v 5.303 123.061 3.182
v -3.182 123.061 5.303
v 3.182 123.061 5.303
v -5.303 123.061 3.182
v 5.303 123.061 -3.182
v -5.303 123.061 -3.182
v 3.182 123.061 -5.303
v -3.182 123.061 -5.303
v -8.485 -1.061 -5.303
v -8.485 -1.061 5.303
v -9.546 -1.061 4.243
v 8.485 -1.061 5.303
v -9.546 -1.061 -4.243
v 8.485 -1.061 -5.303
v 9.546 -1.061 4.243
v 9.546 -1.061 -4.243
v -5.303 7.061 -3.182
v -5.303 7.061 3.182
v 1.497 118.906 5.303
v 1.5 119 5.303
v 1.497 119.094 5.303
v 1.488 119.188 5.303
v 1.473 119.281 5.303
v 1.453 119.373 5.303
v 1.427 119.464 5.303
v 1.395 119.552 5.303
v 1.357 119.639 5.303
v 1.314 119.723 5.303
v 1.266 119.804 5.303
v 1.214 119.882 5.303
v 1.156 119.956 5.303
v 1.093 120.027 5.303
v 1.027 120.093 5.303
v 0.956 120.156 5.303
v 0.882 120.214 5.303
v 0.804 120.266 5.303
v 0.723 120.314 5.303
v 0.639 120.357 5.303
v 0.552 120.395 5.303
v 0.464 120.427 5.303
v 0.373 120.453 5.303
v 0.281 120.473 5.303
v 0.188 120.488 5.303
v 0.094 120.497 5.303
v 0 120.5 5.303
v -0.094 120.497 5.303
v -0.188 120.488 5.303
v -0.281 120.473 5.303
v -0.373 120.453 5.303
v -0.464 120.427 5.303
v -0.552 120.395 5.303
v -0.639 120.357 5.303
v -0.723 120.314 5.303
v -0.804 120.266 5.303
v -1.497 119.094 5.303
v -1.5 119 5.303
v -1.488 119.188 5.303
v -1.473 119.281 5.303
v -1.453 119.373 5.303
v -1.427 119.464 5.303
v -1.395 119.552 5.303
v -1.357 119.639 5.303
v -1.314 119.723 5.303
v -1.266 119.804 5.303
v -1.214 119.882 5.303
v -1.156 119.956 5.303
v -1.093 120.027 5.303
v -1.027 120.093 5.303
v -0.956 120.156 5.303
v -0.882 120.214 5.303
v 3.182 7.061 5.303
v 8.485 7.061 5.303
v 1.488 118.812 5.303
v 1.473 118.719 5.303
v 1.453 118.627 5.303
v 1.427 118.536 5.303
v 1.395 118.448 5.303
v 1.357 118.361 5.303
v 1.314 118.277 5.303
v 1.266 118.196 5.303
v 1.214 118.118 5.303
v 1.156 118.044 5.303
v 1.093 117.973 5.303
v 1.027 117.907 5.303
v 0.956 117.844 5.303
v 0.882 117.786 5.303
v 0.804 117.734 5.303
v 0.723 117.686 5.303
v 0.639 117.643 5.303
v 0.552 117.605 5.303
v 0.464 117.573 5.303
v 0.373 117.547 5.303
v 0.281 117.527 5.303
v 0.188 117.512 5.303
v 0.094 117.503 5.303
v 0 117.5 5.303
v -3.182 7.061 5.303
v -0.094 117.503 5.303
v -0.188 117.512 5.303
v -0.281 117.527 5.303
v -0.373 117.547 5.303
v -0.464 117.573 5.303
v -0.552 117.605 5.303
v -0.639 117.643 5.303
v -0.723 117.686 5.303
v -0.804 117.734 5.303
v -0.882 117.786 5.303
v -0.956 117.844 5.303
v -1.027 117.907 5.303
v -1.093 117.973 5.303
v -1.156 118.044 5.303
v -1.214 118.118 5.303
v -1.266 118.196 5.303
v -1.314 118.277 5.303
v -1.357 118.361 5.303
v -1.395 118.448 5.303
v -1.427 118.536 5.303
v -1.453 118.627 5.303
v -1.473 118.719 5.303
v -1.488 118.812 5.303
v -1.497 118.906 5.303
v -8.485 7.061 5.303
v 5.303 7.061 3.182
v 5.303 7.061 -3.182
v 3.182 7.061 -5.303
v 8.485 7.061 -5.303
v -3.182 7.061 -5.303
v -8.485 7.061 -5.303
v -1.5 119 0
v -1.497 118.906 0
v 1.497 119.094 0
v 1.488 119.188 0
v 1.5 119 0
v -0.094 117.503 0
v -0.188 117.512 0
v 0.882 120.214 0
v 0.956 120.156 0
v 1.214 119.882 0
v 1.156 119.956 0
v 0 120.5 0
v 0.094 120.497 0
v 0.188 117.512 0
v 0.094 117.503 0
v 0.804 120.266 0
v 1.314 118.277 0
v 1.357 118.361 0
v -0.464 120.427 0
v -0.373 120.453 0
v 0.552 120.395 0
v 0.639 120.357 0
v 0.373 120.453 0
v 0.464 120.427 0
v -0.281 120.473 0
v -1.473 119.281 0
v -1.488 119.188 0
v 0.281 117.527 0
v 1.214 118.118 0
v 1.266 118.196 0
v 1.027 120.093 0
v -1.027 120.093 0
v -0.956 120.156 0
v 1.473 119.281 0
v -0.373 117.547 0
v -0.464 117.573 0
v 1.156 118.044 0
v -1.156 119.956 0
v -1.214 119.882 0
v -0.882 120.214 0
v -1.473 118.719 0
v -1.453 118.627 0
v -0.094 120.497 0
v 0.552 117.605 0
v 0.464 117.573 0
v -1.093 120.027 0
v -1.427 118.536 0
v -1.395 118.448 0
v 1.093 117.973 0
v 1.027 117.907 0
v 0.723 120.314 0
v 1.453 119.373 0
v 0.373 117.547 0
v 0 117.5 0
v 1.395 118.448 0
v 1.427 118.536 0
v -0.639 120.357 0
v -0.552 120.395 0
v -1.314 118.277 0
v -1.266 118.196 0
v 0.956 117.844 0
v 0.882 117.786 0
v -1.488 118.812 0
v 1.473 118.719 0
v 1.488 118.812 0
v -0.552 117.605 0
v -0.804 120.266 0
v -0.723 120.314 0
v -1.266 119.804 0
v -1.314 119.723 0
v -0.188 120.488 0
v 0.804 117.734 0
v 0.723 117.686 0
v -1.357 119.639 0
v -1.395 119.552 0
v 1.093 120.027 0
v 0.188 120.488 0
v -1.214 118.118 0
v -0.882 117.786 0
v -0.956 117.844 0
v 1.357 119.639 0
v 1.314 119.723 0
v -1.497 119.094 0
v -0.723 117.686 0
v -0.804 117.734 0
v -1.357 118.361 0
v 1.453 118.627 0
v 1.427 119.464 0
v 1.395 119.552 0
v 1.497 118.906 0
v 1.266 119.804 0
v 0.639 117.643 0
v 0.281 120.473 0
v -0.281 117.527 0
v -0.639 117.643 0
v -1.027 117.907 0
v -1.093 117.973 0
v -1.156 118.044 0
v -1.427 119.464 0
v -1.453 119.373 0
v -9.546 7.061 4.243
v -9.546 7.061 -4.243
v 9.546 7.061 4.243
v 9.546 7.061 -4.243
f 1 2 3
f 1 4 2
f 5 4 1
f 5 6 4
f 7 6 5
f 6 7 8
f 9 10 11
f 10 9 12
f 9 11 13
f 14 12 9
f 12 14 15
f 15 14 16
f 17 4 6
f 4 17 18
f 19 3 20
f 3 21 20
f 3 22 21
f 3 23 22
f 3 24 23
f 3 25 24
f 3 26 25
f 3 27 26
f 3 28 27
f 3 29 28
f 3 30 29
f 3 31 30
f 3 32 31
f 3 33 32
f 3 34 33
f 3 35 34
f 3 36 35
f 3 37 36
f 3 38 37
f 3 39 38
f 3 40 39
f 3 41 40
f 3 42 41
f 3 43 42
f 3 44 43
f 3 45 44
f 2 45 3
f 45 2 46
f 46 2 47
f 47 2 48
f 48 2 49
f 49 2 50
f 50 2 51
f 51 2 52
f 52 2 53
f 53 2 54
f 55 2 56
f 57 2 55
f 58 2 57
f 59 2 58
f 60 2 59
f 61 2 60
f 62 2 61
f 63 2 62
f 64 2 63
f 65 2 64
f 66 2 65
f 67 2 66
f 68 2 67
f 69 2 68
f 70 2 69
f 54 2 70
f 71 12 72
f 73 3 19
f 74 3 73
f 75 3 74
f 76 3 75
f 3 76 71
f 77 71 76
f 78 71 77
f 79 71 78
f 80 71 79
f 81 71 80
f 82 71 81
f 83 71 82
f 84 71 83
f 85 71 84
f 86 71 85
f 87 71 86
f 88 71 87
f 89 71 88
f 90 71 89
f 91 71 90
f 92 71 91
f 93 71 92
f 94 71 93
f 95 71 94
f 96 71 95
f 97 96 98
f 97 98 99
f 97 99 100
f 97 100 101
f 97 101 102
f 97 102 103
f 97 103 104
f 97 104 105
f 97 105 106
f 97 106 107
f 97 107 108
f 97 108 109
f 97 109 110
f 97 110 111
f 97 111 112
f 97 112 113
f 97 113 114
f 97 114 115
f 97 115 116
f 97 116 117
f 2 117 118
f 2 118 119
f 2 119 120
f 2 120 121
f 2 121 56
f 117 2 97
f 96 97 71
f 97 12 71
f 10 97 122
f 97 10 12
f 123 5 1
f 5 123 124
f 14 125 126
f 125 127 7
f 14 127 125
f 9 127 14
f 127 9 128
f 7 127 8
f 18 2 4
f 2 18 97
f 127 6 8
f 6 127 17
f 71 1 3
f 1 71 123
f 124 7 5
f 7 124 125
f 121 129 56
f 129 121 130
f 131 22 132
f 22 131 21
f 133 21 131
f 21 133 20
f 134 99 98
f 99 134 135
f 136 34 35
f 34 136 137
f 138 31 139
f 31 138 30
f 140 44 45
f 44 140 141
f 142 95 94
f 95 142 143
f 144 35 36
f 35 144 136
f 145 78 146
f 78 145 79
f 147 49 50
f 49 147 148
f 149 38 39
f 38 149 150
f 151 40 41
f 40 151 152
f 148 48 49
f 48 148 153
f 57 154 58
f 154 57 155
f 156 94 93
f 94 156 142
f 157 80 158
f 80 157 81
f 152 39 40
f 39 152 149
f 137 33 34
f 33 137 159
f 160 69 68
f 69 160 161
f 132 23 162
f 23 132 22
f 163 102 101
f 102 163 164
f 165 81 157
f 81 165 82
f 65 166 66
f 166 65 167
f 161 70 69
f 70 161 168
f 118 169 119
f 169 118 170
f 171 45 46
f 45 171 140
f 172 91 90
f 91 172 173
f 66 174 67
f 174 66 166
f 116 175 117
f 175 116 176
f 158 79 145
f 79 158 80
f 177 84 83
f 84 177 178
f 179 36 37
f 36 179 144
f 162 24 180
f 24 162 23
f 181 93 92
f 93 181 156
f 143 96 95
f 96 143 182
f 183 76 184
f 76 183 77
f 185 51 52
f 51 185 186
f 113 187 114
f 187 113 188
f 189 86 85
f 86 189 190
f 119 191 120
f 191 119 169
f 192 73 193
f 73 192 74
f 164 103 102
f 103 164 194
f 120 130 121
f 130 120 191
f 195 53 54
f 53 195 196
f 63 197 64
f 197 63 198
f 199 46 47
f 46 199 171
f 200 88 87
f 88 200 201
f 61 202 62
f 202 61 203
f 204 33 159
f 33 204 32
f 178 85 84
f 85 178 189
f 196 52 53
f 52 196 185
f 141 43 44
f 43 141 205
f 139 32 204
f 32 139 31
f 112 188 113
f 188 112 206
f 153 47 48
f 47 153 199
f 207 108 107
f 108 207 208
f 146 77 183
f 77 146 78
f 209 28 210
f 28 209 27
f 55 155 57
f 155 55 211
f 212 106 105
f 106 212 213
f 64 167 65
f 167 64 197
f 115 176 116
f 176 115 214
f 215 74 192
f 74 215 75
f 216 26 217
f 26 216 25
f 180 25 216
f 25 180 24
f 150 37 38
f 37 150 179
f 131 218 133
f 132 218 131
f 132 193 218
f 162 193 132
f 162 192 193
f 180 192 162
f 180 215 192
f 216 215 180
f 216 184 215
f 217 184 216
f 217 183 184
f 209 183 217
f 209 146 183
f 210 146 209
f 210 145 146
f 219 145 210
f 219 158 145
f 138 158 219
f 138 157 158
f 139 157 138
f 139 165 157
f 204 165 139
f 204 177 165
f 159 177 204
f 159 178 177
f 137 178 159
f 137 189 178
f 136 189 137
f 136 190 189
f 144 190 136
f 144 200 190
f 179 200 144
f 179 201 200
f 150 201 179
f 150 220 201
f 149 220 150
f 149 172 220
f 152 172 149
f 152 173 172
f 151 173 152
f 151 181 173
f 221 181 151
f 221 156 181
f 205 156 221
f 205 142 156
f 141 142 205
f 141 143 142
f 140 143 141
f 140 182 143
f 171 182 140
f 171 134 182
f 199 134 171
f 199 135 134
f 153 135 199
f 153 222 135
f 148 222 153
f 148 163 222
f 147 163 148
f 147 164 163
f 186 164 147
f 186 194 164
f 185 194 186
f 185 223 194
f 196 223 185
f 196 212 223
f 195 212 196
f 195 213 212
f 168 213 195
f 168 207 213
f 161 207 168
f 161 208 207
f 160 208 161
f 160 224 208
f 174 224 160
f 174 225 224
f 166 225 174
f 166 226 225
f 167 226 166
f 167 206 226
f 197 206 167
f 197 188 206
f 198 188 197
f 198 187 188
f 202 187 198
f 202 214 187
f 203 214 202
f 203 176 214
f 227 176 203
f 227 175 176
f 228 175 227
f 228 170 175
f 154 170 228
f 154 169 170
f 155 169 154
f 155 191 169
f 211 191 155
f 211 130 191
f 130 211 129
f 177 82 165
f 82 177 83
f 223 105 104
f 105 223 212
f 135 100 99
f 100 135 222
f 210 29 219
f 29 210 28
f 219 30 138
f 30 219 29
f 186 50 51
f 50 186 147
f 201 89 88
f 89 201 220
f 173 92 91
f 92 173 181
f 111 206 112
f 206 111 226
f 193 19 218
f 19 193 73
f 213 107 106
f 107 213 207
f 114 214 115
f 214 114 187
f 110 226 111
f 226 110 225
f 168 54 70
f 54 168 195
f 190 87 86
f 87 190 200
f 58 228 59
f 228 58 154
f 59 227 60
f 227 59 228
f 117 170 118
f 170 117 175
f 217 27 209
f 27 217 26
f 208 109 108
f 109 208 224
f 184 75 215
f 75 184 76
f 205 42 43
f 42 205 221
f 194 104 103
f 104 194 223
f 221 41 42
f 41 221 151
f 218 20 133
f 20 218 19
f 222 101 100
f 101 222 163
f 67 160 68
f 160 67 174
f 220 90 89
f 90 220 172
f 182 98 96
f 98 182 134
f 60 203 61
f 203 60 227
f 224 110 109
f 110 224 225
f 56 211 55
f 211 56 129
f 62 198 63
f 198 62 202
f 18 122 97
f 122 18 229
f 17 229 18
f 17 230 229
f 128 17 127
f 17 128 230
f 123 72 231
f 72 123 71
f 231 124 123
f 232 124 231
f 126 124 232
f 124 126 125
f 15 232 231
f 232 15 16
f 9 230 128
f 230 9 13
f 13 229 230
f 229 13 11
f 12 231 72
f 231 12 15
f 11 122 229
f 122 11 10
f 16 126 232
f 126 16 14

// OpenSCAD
// file: ../chamferer.scad
INFINITY = 10000;
ATOM = .01;

module chamfer_tool(r, fn, tool,
                    ax, ay, az,
                    ax2, ay2, az2,
                    ax3, ay3, az3) {
    rotate([ax3, ay3, az3])
    rotate([ax2, ay2, az2])
    rotate([ax, ay, az]) {
        if (tool=="sphere") {
            sphere(r, $fn=fn);
        }
        else if (tool=="hemisphere-up") {
            intersection() {
                sphere(r, $fn=fn);
                cylinder(r=r*2, h=r*2);
            }
        }
        else if (tool=="hemisphere-down") {
            difference() {
                sphere(r, $fn=fn);
                cylinder(r=r*2, h=r*2);
            }
        }
        else if (tool=="cone") {
            cylinder(r, r, 0, $fn=fn);
            scale([1, 1, -1])
            cylinder(r, r, 0, $fn=fn);
        }
        else if (tool=="cone-up") {
            cylinder(r, r, 0, $fn=fn, center=true);
        }
        else if (tool=="cone-down") {
            scale([1, 1, -1])
            cylinder(r, r, 0, $fn=fn, center=true);
        }
        else if (tool=="octahedron") {
            resize([r*2, r*2, r*2]) {
                cylinder(r, r, 0, $fn=4);
                scale([1, 1, -1])
                cylinder(r, r, 0, $fn=4);
            }
        }
        else if (tool=="pyramid") {
            resize([r*2, r*2, r*2]) {
                cylinder(r, r, 0, center=true, $fn=4);
            }
        }
        else if (tool=="rpyramid") {
            resize([r*2, r*2, r*2]) {
                cylinder(r, 0, r, center=true, $fn=4);
            }
        }
        else if (tool=="cylinder-z" || tool=="cylinder") {
            cylinder(r=r, h=ATOM, $fn=fn, center=true);
        }
        else if (tool=="cylinder-x") {
            rotate([0, 90, 0])
            cylinder(r=r, h=ATOM, $fn=fn, center=true);
        }
        else if (tool=="cylinder-y") {
            rotate([90, 0, 0])
            cylinder(r=r, h=ATOM, $fn=fn, center=true);
        }
        else if (tool=="cube") {
            cube(r*2, center=true);
        }
        else if (tool=="plate-y") {
            cube([r*2, ATOM, r*2], center=true);
        }
        else if (tool=="plate-z") {
            cube([r*2, r*2, ATOM], center=true);
        }
        else {
            assert(false, str("Unknown tool: ", tool));
        }
    }
}

module shrinker(r, tool, fn,
                ax, ay, az,
                ax2, ay2, az2,
                ax3, ay3, az3) {
    if (!r) {
        children();
    }
    else {
        // re-invert+grow = fillet
        difference() {
            cube(INFINITY/2, center=true);

            // invert+grow = carve
            minkowski() {
                difference() {
                    cube(INFINITY, center=true);
                    children();
                }
                //cube(r, center=true);
                chamfer_tool(r, fn, tool,
                             ax, ay, az,
                             ax2, ay2, az2,
                             ax3, ay3, az3);
            }
        }
    }
}

module chamferer(r, tool="sphere", fn=8, shrink=true, grow=true,
                 ax=0, ay=0, az=0,
                 ax2=0, ay2=0, az2=0,
                 ax3=0, ay3=0, az3=0,
) {
    if (!r) {
        children();
    }
    else {
        minkowski() {
            if (shrink)
                shrinker(r, tool, fn,
                         ax, ay, az,
                         ax2, ay2, az2,
                         ax3, ay3, az3) children();
            else
                children();
            
            if (grow)
                chamfer_tool(r, fn, tool,
                             ax, ay, az,
                             ax2, ay2, az2,
                             ax3, ay3, az3);
        }
    }
}



cube(50);

translate([70, 0, 0])
chamferer(5, "hemisphere-up", $preview? 6*4 : 30)
//shrinker(5, "sphere", $preview? 6*4 : 30)
cube(50);

translate([70*2, 0, 0])
chamferer(5, "octahedron", grow=false)
cube(50);
// file: bin-spring.scad
use <../chamferer.scad>

SPRING_D    = 15;
SPRING_L    = 55;

WALL        = 3;

PISTON_D    = SPRING_D-3;
PISTON_L    = SPRING_L*2 + WALL*4;
PLAY        = 0.6;

BRACKET_TH  = PISTON_D + PLAY + WALL*2;
BRACKET_L   = 50;

SCREW_D     = 4;

$fn = $preview ? 20 : 100;

// Piston
module piston(dt=0) {
    w = PISTON_D/sqrt(2) + dt;

    // head
    if (!dt)
        chamferer(1.5, fn=4, shrink=false)
        translate([-w, -w/2, 0])
        cube([w*2, w, WALL*2]);

    // rod
    difference() {
        intersection() {
            chamferer(1.5, fn=4, shrink=false)
            translate([-w/2, -w/2, 0])
            cube([w, w, PISTON_L]);

            w2 = w * sqrt(2);
            rotate([0, 0, 45])
            cube([w2, w2, PISTON_L*3], center=true);
        }
        // screw hole
        translate([0, 0, PISTON_L-PISTON_D/4])
        rotate([90, 0, 0])
        cylinder(d=3, h=SPRING_D);
    }
}


// bracket
module bracket()
translate([0, 0, SPRING_L+WALL*2]) {
    difference() {
        chamferer($preview ? 0 : 1)
        union() {
            cylinder(d=BRACKET_TH, h=SPRING_L);
            
            translate([-BRACKET_L/2, BRACKET_TH/2-WALL*2, 0])
            chamferer(5, "cylinder-y", fn=$fn)
            cube([BRACKET_L, WALL*2, SPRING_L]);
        }

        piston(dt=PLAY);

        // screw holes
        for (kx=[-1, 1]) {
            for (dy=[[SCREW_D, BRACKET_TH], [SCREW_D*2.5, BRACKET_TH/2 - 2.5]])
            hull() for (y=[SCREW_D*3, SPRING_L-SCREW_D*3])
                translate([kx*((BRACKET_L-BRACKET_TH)/2), dy[1], y])
                rotate([90, 0, 0])
                cylinder(d=dy[0], h=SPRING_L*3);
        }
    }
}


piston();
bracket();
// main file
use <bin-spring.scad>


intersection() {

    rotate([-90, 0, 0])
    piston();
    
if(0)    translate([-7, 8, -7])
    scale([1, .5, 1])
    cube(15);
}
